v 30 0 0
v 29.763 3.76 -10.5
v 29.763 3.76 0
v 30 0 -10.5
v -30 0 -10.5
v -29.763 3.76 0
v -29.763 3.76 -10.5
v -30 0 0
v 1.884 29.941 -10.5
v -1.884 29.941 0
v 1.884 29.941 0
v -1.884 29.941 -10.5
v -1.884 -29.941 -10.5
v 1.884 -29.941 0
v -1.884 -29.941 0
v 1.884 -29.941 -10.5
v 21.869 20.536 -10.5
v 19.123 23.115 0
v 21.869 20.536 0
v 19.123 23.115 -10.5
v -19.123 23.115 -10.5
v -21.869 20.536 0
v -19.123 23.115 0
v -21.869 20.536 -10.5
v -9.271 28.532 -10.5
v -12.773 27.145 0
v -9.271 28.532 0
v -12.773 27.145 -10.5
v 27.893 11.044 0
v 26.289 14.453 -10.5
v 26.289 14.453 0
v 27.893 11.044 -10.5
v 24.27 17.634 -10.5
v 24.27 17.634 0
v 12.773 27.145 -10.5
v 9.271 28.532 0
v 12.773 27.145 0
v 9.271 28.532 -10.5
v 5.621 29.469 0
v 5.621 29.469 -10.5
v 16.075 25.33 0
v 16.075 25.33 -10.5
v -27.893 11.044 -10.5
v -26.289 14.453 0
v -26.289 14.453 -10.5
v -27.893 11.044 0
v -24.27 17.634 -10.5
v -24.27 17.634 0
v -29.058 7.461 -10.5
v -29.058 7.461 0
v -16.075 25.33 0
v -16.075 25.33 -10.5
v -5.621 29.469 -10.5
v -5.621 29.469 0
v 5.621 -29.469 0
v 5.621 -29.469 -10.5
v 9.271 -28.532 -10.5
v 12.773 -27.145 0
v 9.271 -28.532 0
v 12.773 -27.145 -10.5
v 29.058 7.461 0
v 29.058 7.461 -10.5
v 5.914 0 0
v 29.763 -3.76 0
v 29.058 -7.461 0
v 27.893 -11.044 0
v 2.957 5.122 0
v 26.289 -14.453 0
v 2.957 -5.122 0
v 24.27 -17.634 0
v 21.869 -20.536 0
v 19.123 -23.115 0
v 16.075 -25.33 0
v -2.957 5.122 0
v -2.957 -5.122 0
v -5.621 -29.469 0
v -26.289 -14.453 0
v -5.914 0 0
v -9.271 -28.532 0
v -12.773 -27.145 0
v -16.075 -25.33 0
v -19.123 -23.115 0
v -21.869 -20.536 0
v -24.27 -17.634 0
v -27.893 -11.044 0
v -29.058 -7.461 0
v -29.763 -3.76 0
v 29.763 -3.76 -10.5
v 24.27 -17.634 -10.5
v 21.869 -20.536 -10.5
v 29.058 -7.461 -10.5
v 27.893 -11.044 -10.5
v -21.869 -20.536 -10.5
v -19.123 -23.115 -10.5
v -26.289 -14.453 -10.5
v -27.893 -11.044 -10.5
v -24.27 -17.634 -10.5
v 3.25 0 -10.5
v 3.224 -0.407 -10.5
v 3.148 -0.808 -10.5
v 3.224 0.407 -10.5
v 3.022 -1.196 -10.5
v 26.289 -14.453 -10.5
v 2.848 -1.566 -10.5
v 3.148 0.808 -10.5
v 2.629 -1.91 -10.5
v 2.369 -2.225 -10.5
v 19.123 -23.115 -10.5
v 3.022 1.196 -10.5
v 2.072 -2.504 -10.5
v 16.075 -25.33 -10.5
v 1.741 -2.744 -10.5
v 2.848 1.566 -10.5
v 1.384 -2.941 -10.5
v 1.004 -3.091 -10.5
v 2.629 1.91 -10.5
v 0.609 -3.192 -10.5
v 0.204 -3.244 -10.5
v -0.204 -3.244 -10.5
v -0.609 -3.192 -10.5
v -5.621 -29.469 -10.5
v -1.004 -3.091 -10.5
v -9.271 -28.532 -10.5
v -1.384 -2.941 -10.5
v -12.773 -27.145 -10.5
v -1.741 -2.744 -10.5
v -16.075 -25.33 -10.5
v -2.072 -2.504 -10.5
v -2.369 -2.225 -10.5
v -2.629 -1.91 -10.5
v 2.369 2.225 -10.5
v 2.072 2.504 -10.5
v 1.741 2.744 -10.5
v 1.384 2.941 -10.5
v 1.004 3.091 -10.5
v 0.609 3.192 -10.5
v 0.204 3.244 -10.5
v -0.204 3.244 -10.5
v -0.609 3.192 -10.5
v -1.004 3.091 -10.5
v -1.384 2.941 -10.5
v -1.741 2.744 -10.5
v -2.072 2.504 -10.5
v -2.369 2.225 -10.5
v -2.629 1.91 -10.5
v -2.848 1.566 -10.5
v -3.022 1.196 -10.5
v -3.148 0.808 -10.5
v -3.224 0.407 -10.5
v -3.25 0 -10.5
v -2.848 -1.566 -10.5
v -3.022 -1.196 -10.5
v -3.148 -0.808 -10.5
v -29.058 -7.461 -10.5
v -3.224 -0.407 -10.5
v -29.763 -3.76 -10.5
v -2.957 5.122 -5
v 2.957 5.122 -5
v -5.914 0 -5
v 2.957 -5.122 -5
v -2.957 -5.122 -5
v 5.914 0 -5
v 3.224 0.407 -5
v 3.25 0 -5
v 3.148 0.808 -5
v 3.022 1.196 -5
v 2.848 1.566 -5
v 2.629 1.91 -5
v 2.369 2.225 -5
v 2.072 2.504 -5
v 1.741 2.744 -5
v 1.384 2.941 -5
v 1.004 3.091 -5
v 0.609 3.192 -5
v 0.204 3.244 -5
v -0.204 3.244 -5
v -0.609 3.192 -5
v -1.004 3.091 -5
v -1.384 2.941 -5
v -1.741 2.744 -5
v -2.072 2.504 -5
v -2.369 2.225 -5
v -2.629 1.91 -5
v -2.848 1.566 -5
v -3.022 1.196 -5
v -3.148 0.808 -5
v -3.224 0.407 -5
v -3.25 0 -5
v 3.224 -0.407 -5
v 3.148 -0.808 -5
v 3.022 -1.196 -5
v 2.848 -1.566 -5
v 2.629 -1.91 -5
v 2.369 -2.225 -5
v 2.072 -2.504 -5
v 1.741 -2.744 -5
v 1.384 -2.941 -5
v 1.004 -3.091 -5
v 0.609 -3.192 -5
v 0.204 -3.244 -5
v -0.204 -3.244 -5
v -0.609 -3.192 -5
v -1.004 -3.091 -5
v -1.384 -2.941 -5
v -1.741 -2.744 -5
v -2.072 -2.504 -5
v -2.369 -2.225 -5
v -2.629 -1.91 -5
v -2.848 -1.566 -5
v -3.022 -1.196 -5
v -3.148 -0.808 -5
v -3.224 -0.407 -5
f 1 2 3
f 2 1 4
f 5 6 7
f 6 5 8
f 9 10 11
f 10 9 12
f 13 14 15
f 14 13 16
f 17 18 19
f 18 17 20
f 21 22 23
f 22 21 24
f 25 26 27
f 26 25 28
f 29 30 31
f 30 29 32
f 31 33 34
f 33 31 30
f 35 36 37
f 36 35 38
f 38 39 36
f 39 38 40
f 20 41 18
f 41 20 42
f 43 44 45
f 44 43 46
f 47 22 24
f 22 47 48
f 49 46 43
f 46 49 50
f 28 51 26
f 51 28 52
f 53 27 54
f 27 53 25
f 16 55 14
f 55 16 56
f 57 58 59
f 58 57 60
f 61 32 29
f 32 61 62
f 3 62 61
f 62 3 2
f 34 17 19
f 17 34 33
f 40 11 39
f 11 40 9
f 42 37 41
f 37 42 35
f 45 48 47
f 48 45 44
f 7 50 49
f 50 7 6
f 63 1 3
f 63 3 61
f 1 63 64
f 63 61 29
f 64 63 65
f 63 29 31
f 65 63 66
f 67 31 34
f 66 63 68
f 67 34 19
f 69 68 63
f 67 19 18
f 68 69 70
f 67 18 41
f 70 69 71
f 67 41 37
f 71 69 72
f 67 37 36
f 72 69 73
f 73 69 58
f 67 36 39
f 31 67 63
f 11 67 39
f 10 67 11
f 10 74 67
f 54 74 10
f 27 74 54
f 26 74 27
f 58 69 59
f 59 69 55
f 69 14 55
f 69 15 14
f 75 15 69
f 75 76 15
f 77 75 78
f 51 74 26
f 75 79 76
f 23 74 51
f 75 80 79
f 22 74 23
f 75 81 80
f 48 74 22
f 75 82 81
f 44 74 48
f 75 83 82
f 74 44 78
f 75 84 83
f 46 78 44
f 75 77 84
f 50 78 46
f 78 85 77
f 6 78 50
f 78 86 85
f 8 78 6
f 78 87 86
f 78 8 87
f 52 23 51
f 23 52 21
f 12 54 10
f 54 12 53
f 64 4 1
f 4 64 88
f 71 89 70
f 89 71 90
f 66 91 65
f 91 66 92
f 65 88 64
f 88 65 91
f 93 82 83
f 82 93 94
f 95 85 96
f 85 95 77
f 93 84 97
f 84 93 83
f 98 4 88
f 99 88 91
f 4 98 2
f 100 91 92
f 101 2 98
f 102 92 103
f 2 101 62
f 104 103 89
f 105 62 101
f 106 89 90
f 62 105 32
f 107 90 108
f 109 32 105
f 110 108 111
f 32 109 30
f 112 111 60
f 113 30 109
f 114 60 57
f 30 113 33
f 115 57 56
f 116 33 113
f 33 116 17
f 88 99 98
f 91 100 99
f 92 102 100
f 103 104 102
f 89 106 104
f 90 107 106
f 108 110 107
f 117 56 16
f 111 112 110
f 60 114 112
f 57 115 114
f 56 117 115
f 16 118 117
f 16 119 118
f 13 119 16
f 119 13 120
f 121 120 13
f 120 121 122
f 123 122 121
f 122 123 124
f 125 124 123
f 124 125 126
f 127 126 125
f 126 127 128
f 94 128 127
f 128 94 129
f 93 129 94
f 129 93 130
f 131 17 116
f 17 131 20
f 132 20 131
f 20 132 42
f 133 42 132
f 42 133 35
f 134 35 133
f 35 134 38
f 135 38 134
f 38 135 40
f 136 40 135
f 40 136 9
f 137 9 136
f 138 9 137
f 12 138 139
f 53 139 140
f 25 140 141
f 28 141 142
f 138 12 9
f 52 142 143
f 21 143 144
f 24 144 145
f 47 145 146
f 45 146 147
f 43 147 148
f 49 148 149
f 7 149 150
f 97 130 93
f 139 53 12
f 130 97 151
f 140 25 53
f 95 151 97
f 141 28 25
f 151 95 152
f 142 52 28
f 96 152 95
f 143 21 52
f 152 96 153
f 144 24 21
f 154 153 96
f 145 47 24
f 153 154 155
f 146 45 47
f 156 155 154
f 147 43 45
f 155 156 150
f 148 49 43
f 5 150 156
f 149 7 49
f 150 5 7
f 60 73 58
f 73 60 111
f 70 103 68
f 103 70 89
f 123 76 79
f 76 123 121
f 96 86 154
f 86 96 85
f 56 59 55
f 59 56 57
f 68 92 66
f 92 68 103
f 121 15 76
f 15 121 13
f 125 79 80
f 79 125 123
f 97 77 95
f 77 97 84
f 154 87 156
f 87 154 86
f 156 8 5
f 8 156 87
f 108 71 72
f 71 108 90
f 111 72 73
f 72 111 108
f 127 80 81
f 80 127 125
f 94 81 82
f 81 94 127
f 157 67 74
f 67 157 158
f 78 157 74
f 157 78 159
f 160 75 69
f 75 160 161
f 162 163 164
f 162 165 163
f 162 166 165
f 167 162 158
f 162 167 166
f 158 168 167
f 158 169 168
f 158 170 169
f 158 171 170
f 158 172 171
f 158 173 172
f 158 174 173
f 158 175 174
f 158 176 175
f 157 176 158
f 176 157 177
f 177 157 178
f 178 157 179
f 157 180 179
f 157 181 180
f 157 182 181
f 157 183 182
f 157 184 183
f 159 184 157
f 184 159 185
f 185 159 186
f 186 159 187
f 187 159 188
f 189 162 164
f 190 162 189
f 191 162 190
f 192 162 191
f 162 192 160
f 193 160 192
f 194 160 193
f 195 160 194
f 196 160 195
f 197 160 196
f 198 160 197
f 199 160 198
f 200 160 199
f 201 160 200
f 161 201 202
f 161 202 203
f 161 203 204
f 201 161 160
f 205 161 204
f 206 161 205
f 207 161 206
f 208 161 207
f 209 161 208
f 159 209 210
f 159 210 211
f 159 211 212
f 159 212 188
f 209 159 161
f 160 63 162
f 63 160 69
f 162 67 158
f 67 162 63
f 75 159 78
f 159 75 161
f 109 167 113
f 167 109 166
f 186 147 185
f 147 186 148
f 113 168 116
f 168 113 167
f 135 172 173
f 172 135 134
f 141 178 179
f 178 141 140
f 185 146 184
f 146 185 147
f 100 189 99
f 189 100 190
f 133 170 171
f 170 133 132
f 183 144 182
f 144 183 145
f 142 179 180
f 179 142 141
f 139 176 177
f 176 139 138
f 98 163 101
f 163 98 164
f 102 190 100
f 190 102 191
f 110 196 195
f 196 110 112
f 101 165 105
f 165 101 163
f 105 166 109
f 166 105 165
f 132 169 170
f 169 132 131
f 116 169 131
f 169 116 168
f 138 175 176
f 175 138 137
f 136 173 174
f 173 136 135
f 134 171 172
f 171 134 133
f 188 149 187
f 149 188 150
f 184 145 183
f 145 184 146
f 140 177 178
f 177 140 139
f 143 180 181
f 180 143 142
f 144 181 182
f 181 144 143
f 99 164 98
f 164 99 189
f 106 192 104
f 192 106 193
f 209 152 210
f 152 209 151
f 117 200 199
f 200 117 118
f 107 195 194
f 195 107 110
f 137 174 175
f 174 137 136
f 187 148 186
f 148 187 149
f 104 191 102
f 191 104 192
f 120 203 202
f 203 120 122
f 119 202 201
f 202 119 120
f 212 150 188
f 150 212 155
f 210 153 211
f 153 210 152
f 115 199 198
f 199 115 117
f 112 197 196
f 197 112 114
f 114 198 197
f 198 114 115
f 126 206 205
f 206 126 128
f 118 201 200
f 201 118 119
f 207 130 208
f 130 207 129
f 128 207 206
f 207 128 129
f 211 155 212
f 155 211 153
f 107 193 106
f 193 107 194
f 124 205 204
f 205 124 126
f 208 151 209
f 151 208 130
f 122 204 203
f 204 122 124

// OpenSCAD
$fn = 50;


difference() {
	union() {
		translate(v = [0, 0, -10.5000000000]) {
			cylinder(h = 10.5000000000, r = 30.0000000000);
		}
		translate(v = [0, 0, -9.0000000000]) {
			cylinder(h = 9, r = 2.8750000000);
		}
	}
	union() {
		translate(v = [0, 0, 0]) {
			rotate(a = [0, 0, 0]) {
				difference() {
					union() {
						translate(v = [0, 0, -5]) {
							#linear_extrude(height = 5) {
								polygon(points = [[5.9142500000, 0.0000000000], [2.9571250000, 5.1218907443], [-2.9571250000, 5.1218907443], [-5.9142500000, 0.0000000000], [-2.9571250000, -5.1218907443], [2.9571250000, -5.1218907443]]);
							}
						}
					}
					union();
				}
			}
		}
		#translate(v = [0, 0, -100.0000000000]) {
			cylinder(h = 200, r = 3.2500000000);
		}
	}
}
